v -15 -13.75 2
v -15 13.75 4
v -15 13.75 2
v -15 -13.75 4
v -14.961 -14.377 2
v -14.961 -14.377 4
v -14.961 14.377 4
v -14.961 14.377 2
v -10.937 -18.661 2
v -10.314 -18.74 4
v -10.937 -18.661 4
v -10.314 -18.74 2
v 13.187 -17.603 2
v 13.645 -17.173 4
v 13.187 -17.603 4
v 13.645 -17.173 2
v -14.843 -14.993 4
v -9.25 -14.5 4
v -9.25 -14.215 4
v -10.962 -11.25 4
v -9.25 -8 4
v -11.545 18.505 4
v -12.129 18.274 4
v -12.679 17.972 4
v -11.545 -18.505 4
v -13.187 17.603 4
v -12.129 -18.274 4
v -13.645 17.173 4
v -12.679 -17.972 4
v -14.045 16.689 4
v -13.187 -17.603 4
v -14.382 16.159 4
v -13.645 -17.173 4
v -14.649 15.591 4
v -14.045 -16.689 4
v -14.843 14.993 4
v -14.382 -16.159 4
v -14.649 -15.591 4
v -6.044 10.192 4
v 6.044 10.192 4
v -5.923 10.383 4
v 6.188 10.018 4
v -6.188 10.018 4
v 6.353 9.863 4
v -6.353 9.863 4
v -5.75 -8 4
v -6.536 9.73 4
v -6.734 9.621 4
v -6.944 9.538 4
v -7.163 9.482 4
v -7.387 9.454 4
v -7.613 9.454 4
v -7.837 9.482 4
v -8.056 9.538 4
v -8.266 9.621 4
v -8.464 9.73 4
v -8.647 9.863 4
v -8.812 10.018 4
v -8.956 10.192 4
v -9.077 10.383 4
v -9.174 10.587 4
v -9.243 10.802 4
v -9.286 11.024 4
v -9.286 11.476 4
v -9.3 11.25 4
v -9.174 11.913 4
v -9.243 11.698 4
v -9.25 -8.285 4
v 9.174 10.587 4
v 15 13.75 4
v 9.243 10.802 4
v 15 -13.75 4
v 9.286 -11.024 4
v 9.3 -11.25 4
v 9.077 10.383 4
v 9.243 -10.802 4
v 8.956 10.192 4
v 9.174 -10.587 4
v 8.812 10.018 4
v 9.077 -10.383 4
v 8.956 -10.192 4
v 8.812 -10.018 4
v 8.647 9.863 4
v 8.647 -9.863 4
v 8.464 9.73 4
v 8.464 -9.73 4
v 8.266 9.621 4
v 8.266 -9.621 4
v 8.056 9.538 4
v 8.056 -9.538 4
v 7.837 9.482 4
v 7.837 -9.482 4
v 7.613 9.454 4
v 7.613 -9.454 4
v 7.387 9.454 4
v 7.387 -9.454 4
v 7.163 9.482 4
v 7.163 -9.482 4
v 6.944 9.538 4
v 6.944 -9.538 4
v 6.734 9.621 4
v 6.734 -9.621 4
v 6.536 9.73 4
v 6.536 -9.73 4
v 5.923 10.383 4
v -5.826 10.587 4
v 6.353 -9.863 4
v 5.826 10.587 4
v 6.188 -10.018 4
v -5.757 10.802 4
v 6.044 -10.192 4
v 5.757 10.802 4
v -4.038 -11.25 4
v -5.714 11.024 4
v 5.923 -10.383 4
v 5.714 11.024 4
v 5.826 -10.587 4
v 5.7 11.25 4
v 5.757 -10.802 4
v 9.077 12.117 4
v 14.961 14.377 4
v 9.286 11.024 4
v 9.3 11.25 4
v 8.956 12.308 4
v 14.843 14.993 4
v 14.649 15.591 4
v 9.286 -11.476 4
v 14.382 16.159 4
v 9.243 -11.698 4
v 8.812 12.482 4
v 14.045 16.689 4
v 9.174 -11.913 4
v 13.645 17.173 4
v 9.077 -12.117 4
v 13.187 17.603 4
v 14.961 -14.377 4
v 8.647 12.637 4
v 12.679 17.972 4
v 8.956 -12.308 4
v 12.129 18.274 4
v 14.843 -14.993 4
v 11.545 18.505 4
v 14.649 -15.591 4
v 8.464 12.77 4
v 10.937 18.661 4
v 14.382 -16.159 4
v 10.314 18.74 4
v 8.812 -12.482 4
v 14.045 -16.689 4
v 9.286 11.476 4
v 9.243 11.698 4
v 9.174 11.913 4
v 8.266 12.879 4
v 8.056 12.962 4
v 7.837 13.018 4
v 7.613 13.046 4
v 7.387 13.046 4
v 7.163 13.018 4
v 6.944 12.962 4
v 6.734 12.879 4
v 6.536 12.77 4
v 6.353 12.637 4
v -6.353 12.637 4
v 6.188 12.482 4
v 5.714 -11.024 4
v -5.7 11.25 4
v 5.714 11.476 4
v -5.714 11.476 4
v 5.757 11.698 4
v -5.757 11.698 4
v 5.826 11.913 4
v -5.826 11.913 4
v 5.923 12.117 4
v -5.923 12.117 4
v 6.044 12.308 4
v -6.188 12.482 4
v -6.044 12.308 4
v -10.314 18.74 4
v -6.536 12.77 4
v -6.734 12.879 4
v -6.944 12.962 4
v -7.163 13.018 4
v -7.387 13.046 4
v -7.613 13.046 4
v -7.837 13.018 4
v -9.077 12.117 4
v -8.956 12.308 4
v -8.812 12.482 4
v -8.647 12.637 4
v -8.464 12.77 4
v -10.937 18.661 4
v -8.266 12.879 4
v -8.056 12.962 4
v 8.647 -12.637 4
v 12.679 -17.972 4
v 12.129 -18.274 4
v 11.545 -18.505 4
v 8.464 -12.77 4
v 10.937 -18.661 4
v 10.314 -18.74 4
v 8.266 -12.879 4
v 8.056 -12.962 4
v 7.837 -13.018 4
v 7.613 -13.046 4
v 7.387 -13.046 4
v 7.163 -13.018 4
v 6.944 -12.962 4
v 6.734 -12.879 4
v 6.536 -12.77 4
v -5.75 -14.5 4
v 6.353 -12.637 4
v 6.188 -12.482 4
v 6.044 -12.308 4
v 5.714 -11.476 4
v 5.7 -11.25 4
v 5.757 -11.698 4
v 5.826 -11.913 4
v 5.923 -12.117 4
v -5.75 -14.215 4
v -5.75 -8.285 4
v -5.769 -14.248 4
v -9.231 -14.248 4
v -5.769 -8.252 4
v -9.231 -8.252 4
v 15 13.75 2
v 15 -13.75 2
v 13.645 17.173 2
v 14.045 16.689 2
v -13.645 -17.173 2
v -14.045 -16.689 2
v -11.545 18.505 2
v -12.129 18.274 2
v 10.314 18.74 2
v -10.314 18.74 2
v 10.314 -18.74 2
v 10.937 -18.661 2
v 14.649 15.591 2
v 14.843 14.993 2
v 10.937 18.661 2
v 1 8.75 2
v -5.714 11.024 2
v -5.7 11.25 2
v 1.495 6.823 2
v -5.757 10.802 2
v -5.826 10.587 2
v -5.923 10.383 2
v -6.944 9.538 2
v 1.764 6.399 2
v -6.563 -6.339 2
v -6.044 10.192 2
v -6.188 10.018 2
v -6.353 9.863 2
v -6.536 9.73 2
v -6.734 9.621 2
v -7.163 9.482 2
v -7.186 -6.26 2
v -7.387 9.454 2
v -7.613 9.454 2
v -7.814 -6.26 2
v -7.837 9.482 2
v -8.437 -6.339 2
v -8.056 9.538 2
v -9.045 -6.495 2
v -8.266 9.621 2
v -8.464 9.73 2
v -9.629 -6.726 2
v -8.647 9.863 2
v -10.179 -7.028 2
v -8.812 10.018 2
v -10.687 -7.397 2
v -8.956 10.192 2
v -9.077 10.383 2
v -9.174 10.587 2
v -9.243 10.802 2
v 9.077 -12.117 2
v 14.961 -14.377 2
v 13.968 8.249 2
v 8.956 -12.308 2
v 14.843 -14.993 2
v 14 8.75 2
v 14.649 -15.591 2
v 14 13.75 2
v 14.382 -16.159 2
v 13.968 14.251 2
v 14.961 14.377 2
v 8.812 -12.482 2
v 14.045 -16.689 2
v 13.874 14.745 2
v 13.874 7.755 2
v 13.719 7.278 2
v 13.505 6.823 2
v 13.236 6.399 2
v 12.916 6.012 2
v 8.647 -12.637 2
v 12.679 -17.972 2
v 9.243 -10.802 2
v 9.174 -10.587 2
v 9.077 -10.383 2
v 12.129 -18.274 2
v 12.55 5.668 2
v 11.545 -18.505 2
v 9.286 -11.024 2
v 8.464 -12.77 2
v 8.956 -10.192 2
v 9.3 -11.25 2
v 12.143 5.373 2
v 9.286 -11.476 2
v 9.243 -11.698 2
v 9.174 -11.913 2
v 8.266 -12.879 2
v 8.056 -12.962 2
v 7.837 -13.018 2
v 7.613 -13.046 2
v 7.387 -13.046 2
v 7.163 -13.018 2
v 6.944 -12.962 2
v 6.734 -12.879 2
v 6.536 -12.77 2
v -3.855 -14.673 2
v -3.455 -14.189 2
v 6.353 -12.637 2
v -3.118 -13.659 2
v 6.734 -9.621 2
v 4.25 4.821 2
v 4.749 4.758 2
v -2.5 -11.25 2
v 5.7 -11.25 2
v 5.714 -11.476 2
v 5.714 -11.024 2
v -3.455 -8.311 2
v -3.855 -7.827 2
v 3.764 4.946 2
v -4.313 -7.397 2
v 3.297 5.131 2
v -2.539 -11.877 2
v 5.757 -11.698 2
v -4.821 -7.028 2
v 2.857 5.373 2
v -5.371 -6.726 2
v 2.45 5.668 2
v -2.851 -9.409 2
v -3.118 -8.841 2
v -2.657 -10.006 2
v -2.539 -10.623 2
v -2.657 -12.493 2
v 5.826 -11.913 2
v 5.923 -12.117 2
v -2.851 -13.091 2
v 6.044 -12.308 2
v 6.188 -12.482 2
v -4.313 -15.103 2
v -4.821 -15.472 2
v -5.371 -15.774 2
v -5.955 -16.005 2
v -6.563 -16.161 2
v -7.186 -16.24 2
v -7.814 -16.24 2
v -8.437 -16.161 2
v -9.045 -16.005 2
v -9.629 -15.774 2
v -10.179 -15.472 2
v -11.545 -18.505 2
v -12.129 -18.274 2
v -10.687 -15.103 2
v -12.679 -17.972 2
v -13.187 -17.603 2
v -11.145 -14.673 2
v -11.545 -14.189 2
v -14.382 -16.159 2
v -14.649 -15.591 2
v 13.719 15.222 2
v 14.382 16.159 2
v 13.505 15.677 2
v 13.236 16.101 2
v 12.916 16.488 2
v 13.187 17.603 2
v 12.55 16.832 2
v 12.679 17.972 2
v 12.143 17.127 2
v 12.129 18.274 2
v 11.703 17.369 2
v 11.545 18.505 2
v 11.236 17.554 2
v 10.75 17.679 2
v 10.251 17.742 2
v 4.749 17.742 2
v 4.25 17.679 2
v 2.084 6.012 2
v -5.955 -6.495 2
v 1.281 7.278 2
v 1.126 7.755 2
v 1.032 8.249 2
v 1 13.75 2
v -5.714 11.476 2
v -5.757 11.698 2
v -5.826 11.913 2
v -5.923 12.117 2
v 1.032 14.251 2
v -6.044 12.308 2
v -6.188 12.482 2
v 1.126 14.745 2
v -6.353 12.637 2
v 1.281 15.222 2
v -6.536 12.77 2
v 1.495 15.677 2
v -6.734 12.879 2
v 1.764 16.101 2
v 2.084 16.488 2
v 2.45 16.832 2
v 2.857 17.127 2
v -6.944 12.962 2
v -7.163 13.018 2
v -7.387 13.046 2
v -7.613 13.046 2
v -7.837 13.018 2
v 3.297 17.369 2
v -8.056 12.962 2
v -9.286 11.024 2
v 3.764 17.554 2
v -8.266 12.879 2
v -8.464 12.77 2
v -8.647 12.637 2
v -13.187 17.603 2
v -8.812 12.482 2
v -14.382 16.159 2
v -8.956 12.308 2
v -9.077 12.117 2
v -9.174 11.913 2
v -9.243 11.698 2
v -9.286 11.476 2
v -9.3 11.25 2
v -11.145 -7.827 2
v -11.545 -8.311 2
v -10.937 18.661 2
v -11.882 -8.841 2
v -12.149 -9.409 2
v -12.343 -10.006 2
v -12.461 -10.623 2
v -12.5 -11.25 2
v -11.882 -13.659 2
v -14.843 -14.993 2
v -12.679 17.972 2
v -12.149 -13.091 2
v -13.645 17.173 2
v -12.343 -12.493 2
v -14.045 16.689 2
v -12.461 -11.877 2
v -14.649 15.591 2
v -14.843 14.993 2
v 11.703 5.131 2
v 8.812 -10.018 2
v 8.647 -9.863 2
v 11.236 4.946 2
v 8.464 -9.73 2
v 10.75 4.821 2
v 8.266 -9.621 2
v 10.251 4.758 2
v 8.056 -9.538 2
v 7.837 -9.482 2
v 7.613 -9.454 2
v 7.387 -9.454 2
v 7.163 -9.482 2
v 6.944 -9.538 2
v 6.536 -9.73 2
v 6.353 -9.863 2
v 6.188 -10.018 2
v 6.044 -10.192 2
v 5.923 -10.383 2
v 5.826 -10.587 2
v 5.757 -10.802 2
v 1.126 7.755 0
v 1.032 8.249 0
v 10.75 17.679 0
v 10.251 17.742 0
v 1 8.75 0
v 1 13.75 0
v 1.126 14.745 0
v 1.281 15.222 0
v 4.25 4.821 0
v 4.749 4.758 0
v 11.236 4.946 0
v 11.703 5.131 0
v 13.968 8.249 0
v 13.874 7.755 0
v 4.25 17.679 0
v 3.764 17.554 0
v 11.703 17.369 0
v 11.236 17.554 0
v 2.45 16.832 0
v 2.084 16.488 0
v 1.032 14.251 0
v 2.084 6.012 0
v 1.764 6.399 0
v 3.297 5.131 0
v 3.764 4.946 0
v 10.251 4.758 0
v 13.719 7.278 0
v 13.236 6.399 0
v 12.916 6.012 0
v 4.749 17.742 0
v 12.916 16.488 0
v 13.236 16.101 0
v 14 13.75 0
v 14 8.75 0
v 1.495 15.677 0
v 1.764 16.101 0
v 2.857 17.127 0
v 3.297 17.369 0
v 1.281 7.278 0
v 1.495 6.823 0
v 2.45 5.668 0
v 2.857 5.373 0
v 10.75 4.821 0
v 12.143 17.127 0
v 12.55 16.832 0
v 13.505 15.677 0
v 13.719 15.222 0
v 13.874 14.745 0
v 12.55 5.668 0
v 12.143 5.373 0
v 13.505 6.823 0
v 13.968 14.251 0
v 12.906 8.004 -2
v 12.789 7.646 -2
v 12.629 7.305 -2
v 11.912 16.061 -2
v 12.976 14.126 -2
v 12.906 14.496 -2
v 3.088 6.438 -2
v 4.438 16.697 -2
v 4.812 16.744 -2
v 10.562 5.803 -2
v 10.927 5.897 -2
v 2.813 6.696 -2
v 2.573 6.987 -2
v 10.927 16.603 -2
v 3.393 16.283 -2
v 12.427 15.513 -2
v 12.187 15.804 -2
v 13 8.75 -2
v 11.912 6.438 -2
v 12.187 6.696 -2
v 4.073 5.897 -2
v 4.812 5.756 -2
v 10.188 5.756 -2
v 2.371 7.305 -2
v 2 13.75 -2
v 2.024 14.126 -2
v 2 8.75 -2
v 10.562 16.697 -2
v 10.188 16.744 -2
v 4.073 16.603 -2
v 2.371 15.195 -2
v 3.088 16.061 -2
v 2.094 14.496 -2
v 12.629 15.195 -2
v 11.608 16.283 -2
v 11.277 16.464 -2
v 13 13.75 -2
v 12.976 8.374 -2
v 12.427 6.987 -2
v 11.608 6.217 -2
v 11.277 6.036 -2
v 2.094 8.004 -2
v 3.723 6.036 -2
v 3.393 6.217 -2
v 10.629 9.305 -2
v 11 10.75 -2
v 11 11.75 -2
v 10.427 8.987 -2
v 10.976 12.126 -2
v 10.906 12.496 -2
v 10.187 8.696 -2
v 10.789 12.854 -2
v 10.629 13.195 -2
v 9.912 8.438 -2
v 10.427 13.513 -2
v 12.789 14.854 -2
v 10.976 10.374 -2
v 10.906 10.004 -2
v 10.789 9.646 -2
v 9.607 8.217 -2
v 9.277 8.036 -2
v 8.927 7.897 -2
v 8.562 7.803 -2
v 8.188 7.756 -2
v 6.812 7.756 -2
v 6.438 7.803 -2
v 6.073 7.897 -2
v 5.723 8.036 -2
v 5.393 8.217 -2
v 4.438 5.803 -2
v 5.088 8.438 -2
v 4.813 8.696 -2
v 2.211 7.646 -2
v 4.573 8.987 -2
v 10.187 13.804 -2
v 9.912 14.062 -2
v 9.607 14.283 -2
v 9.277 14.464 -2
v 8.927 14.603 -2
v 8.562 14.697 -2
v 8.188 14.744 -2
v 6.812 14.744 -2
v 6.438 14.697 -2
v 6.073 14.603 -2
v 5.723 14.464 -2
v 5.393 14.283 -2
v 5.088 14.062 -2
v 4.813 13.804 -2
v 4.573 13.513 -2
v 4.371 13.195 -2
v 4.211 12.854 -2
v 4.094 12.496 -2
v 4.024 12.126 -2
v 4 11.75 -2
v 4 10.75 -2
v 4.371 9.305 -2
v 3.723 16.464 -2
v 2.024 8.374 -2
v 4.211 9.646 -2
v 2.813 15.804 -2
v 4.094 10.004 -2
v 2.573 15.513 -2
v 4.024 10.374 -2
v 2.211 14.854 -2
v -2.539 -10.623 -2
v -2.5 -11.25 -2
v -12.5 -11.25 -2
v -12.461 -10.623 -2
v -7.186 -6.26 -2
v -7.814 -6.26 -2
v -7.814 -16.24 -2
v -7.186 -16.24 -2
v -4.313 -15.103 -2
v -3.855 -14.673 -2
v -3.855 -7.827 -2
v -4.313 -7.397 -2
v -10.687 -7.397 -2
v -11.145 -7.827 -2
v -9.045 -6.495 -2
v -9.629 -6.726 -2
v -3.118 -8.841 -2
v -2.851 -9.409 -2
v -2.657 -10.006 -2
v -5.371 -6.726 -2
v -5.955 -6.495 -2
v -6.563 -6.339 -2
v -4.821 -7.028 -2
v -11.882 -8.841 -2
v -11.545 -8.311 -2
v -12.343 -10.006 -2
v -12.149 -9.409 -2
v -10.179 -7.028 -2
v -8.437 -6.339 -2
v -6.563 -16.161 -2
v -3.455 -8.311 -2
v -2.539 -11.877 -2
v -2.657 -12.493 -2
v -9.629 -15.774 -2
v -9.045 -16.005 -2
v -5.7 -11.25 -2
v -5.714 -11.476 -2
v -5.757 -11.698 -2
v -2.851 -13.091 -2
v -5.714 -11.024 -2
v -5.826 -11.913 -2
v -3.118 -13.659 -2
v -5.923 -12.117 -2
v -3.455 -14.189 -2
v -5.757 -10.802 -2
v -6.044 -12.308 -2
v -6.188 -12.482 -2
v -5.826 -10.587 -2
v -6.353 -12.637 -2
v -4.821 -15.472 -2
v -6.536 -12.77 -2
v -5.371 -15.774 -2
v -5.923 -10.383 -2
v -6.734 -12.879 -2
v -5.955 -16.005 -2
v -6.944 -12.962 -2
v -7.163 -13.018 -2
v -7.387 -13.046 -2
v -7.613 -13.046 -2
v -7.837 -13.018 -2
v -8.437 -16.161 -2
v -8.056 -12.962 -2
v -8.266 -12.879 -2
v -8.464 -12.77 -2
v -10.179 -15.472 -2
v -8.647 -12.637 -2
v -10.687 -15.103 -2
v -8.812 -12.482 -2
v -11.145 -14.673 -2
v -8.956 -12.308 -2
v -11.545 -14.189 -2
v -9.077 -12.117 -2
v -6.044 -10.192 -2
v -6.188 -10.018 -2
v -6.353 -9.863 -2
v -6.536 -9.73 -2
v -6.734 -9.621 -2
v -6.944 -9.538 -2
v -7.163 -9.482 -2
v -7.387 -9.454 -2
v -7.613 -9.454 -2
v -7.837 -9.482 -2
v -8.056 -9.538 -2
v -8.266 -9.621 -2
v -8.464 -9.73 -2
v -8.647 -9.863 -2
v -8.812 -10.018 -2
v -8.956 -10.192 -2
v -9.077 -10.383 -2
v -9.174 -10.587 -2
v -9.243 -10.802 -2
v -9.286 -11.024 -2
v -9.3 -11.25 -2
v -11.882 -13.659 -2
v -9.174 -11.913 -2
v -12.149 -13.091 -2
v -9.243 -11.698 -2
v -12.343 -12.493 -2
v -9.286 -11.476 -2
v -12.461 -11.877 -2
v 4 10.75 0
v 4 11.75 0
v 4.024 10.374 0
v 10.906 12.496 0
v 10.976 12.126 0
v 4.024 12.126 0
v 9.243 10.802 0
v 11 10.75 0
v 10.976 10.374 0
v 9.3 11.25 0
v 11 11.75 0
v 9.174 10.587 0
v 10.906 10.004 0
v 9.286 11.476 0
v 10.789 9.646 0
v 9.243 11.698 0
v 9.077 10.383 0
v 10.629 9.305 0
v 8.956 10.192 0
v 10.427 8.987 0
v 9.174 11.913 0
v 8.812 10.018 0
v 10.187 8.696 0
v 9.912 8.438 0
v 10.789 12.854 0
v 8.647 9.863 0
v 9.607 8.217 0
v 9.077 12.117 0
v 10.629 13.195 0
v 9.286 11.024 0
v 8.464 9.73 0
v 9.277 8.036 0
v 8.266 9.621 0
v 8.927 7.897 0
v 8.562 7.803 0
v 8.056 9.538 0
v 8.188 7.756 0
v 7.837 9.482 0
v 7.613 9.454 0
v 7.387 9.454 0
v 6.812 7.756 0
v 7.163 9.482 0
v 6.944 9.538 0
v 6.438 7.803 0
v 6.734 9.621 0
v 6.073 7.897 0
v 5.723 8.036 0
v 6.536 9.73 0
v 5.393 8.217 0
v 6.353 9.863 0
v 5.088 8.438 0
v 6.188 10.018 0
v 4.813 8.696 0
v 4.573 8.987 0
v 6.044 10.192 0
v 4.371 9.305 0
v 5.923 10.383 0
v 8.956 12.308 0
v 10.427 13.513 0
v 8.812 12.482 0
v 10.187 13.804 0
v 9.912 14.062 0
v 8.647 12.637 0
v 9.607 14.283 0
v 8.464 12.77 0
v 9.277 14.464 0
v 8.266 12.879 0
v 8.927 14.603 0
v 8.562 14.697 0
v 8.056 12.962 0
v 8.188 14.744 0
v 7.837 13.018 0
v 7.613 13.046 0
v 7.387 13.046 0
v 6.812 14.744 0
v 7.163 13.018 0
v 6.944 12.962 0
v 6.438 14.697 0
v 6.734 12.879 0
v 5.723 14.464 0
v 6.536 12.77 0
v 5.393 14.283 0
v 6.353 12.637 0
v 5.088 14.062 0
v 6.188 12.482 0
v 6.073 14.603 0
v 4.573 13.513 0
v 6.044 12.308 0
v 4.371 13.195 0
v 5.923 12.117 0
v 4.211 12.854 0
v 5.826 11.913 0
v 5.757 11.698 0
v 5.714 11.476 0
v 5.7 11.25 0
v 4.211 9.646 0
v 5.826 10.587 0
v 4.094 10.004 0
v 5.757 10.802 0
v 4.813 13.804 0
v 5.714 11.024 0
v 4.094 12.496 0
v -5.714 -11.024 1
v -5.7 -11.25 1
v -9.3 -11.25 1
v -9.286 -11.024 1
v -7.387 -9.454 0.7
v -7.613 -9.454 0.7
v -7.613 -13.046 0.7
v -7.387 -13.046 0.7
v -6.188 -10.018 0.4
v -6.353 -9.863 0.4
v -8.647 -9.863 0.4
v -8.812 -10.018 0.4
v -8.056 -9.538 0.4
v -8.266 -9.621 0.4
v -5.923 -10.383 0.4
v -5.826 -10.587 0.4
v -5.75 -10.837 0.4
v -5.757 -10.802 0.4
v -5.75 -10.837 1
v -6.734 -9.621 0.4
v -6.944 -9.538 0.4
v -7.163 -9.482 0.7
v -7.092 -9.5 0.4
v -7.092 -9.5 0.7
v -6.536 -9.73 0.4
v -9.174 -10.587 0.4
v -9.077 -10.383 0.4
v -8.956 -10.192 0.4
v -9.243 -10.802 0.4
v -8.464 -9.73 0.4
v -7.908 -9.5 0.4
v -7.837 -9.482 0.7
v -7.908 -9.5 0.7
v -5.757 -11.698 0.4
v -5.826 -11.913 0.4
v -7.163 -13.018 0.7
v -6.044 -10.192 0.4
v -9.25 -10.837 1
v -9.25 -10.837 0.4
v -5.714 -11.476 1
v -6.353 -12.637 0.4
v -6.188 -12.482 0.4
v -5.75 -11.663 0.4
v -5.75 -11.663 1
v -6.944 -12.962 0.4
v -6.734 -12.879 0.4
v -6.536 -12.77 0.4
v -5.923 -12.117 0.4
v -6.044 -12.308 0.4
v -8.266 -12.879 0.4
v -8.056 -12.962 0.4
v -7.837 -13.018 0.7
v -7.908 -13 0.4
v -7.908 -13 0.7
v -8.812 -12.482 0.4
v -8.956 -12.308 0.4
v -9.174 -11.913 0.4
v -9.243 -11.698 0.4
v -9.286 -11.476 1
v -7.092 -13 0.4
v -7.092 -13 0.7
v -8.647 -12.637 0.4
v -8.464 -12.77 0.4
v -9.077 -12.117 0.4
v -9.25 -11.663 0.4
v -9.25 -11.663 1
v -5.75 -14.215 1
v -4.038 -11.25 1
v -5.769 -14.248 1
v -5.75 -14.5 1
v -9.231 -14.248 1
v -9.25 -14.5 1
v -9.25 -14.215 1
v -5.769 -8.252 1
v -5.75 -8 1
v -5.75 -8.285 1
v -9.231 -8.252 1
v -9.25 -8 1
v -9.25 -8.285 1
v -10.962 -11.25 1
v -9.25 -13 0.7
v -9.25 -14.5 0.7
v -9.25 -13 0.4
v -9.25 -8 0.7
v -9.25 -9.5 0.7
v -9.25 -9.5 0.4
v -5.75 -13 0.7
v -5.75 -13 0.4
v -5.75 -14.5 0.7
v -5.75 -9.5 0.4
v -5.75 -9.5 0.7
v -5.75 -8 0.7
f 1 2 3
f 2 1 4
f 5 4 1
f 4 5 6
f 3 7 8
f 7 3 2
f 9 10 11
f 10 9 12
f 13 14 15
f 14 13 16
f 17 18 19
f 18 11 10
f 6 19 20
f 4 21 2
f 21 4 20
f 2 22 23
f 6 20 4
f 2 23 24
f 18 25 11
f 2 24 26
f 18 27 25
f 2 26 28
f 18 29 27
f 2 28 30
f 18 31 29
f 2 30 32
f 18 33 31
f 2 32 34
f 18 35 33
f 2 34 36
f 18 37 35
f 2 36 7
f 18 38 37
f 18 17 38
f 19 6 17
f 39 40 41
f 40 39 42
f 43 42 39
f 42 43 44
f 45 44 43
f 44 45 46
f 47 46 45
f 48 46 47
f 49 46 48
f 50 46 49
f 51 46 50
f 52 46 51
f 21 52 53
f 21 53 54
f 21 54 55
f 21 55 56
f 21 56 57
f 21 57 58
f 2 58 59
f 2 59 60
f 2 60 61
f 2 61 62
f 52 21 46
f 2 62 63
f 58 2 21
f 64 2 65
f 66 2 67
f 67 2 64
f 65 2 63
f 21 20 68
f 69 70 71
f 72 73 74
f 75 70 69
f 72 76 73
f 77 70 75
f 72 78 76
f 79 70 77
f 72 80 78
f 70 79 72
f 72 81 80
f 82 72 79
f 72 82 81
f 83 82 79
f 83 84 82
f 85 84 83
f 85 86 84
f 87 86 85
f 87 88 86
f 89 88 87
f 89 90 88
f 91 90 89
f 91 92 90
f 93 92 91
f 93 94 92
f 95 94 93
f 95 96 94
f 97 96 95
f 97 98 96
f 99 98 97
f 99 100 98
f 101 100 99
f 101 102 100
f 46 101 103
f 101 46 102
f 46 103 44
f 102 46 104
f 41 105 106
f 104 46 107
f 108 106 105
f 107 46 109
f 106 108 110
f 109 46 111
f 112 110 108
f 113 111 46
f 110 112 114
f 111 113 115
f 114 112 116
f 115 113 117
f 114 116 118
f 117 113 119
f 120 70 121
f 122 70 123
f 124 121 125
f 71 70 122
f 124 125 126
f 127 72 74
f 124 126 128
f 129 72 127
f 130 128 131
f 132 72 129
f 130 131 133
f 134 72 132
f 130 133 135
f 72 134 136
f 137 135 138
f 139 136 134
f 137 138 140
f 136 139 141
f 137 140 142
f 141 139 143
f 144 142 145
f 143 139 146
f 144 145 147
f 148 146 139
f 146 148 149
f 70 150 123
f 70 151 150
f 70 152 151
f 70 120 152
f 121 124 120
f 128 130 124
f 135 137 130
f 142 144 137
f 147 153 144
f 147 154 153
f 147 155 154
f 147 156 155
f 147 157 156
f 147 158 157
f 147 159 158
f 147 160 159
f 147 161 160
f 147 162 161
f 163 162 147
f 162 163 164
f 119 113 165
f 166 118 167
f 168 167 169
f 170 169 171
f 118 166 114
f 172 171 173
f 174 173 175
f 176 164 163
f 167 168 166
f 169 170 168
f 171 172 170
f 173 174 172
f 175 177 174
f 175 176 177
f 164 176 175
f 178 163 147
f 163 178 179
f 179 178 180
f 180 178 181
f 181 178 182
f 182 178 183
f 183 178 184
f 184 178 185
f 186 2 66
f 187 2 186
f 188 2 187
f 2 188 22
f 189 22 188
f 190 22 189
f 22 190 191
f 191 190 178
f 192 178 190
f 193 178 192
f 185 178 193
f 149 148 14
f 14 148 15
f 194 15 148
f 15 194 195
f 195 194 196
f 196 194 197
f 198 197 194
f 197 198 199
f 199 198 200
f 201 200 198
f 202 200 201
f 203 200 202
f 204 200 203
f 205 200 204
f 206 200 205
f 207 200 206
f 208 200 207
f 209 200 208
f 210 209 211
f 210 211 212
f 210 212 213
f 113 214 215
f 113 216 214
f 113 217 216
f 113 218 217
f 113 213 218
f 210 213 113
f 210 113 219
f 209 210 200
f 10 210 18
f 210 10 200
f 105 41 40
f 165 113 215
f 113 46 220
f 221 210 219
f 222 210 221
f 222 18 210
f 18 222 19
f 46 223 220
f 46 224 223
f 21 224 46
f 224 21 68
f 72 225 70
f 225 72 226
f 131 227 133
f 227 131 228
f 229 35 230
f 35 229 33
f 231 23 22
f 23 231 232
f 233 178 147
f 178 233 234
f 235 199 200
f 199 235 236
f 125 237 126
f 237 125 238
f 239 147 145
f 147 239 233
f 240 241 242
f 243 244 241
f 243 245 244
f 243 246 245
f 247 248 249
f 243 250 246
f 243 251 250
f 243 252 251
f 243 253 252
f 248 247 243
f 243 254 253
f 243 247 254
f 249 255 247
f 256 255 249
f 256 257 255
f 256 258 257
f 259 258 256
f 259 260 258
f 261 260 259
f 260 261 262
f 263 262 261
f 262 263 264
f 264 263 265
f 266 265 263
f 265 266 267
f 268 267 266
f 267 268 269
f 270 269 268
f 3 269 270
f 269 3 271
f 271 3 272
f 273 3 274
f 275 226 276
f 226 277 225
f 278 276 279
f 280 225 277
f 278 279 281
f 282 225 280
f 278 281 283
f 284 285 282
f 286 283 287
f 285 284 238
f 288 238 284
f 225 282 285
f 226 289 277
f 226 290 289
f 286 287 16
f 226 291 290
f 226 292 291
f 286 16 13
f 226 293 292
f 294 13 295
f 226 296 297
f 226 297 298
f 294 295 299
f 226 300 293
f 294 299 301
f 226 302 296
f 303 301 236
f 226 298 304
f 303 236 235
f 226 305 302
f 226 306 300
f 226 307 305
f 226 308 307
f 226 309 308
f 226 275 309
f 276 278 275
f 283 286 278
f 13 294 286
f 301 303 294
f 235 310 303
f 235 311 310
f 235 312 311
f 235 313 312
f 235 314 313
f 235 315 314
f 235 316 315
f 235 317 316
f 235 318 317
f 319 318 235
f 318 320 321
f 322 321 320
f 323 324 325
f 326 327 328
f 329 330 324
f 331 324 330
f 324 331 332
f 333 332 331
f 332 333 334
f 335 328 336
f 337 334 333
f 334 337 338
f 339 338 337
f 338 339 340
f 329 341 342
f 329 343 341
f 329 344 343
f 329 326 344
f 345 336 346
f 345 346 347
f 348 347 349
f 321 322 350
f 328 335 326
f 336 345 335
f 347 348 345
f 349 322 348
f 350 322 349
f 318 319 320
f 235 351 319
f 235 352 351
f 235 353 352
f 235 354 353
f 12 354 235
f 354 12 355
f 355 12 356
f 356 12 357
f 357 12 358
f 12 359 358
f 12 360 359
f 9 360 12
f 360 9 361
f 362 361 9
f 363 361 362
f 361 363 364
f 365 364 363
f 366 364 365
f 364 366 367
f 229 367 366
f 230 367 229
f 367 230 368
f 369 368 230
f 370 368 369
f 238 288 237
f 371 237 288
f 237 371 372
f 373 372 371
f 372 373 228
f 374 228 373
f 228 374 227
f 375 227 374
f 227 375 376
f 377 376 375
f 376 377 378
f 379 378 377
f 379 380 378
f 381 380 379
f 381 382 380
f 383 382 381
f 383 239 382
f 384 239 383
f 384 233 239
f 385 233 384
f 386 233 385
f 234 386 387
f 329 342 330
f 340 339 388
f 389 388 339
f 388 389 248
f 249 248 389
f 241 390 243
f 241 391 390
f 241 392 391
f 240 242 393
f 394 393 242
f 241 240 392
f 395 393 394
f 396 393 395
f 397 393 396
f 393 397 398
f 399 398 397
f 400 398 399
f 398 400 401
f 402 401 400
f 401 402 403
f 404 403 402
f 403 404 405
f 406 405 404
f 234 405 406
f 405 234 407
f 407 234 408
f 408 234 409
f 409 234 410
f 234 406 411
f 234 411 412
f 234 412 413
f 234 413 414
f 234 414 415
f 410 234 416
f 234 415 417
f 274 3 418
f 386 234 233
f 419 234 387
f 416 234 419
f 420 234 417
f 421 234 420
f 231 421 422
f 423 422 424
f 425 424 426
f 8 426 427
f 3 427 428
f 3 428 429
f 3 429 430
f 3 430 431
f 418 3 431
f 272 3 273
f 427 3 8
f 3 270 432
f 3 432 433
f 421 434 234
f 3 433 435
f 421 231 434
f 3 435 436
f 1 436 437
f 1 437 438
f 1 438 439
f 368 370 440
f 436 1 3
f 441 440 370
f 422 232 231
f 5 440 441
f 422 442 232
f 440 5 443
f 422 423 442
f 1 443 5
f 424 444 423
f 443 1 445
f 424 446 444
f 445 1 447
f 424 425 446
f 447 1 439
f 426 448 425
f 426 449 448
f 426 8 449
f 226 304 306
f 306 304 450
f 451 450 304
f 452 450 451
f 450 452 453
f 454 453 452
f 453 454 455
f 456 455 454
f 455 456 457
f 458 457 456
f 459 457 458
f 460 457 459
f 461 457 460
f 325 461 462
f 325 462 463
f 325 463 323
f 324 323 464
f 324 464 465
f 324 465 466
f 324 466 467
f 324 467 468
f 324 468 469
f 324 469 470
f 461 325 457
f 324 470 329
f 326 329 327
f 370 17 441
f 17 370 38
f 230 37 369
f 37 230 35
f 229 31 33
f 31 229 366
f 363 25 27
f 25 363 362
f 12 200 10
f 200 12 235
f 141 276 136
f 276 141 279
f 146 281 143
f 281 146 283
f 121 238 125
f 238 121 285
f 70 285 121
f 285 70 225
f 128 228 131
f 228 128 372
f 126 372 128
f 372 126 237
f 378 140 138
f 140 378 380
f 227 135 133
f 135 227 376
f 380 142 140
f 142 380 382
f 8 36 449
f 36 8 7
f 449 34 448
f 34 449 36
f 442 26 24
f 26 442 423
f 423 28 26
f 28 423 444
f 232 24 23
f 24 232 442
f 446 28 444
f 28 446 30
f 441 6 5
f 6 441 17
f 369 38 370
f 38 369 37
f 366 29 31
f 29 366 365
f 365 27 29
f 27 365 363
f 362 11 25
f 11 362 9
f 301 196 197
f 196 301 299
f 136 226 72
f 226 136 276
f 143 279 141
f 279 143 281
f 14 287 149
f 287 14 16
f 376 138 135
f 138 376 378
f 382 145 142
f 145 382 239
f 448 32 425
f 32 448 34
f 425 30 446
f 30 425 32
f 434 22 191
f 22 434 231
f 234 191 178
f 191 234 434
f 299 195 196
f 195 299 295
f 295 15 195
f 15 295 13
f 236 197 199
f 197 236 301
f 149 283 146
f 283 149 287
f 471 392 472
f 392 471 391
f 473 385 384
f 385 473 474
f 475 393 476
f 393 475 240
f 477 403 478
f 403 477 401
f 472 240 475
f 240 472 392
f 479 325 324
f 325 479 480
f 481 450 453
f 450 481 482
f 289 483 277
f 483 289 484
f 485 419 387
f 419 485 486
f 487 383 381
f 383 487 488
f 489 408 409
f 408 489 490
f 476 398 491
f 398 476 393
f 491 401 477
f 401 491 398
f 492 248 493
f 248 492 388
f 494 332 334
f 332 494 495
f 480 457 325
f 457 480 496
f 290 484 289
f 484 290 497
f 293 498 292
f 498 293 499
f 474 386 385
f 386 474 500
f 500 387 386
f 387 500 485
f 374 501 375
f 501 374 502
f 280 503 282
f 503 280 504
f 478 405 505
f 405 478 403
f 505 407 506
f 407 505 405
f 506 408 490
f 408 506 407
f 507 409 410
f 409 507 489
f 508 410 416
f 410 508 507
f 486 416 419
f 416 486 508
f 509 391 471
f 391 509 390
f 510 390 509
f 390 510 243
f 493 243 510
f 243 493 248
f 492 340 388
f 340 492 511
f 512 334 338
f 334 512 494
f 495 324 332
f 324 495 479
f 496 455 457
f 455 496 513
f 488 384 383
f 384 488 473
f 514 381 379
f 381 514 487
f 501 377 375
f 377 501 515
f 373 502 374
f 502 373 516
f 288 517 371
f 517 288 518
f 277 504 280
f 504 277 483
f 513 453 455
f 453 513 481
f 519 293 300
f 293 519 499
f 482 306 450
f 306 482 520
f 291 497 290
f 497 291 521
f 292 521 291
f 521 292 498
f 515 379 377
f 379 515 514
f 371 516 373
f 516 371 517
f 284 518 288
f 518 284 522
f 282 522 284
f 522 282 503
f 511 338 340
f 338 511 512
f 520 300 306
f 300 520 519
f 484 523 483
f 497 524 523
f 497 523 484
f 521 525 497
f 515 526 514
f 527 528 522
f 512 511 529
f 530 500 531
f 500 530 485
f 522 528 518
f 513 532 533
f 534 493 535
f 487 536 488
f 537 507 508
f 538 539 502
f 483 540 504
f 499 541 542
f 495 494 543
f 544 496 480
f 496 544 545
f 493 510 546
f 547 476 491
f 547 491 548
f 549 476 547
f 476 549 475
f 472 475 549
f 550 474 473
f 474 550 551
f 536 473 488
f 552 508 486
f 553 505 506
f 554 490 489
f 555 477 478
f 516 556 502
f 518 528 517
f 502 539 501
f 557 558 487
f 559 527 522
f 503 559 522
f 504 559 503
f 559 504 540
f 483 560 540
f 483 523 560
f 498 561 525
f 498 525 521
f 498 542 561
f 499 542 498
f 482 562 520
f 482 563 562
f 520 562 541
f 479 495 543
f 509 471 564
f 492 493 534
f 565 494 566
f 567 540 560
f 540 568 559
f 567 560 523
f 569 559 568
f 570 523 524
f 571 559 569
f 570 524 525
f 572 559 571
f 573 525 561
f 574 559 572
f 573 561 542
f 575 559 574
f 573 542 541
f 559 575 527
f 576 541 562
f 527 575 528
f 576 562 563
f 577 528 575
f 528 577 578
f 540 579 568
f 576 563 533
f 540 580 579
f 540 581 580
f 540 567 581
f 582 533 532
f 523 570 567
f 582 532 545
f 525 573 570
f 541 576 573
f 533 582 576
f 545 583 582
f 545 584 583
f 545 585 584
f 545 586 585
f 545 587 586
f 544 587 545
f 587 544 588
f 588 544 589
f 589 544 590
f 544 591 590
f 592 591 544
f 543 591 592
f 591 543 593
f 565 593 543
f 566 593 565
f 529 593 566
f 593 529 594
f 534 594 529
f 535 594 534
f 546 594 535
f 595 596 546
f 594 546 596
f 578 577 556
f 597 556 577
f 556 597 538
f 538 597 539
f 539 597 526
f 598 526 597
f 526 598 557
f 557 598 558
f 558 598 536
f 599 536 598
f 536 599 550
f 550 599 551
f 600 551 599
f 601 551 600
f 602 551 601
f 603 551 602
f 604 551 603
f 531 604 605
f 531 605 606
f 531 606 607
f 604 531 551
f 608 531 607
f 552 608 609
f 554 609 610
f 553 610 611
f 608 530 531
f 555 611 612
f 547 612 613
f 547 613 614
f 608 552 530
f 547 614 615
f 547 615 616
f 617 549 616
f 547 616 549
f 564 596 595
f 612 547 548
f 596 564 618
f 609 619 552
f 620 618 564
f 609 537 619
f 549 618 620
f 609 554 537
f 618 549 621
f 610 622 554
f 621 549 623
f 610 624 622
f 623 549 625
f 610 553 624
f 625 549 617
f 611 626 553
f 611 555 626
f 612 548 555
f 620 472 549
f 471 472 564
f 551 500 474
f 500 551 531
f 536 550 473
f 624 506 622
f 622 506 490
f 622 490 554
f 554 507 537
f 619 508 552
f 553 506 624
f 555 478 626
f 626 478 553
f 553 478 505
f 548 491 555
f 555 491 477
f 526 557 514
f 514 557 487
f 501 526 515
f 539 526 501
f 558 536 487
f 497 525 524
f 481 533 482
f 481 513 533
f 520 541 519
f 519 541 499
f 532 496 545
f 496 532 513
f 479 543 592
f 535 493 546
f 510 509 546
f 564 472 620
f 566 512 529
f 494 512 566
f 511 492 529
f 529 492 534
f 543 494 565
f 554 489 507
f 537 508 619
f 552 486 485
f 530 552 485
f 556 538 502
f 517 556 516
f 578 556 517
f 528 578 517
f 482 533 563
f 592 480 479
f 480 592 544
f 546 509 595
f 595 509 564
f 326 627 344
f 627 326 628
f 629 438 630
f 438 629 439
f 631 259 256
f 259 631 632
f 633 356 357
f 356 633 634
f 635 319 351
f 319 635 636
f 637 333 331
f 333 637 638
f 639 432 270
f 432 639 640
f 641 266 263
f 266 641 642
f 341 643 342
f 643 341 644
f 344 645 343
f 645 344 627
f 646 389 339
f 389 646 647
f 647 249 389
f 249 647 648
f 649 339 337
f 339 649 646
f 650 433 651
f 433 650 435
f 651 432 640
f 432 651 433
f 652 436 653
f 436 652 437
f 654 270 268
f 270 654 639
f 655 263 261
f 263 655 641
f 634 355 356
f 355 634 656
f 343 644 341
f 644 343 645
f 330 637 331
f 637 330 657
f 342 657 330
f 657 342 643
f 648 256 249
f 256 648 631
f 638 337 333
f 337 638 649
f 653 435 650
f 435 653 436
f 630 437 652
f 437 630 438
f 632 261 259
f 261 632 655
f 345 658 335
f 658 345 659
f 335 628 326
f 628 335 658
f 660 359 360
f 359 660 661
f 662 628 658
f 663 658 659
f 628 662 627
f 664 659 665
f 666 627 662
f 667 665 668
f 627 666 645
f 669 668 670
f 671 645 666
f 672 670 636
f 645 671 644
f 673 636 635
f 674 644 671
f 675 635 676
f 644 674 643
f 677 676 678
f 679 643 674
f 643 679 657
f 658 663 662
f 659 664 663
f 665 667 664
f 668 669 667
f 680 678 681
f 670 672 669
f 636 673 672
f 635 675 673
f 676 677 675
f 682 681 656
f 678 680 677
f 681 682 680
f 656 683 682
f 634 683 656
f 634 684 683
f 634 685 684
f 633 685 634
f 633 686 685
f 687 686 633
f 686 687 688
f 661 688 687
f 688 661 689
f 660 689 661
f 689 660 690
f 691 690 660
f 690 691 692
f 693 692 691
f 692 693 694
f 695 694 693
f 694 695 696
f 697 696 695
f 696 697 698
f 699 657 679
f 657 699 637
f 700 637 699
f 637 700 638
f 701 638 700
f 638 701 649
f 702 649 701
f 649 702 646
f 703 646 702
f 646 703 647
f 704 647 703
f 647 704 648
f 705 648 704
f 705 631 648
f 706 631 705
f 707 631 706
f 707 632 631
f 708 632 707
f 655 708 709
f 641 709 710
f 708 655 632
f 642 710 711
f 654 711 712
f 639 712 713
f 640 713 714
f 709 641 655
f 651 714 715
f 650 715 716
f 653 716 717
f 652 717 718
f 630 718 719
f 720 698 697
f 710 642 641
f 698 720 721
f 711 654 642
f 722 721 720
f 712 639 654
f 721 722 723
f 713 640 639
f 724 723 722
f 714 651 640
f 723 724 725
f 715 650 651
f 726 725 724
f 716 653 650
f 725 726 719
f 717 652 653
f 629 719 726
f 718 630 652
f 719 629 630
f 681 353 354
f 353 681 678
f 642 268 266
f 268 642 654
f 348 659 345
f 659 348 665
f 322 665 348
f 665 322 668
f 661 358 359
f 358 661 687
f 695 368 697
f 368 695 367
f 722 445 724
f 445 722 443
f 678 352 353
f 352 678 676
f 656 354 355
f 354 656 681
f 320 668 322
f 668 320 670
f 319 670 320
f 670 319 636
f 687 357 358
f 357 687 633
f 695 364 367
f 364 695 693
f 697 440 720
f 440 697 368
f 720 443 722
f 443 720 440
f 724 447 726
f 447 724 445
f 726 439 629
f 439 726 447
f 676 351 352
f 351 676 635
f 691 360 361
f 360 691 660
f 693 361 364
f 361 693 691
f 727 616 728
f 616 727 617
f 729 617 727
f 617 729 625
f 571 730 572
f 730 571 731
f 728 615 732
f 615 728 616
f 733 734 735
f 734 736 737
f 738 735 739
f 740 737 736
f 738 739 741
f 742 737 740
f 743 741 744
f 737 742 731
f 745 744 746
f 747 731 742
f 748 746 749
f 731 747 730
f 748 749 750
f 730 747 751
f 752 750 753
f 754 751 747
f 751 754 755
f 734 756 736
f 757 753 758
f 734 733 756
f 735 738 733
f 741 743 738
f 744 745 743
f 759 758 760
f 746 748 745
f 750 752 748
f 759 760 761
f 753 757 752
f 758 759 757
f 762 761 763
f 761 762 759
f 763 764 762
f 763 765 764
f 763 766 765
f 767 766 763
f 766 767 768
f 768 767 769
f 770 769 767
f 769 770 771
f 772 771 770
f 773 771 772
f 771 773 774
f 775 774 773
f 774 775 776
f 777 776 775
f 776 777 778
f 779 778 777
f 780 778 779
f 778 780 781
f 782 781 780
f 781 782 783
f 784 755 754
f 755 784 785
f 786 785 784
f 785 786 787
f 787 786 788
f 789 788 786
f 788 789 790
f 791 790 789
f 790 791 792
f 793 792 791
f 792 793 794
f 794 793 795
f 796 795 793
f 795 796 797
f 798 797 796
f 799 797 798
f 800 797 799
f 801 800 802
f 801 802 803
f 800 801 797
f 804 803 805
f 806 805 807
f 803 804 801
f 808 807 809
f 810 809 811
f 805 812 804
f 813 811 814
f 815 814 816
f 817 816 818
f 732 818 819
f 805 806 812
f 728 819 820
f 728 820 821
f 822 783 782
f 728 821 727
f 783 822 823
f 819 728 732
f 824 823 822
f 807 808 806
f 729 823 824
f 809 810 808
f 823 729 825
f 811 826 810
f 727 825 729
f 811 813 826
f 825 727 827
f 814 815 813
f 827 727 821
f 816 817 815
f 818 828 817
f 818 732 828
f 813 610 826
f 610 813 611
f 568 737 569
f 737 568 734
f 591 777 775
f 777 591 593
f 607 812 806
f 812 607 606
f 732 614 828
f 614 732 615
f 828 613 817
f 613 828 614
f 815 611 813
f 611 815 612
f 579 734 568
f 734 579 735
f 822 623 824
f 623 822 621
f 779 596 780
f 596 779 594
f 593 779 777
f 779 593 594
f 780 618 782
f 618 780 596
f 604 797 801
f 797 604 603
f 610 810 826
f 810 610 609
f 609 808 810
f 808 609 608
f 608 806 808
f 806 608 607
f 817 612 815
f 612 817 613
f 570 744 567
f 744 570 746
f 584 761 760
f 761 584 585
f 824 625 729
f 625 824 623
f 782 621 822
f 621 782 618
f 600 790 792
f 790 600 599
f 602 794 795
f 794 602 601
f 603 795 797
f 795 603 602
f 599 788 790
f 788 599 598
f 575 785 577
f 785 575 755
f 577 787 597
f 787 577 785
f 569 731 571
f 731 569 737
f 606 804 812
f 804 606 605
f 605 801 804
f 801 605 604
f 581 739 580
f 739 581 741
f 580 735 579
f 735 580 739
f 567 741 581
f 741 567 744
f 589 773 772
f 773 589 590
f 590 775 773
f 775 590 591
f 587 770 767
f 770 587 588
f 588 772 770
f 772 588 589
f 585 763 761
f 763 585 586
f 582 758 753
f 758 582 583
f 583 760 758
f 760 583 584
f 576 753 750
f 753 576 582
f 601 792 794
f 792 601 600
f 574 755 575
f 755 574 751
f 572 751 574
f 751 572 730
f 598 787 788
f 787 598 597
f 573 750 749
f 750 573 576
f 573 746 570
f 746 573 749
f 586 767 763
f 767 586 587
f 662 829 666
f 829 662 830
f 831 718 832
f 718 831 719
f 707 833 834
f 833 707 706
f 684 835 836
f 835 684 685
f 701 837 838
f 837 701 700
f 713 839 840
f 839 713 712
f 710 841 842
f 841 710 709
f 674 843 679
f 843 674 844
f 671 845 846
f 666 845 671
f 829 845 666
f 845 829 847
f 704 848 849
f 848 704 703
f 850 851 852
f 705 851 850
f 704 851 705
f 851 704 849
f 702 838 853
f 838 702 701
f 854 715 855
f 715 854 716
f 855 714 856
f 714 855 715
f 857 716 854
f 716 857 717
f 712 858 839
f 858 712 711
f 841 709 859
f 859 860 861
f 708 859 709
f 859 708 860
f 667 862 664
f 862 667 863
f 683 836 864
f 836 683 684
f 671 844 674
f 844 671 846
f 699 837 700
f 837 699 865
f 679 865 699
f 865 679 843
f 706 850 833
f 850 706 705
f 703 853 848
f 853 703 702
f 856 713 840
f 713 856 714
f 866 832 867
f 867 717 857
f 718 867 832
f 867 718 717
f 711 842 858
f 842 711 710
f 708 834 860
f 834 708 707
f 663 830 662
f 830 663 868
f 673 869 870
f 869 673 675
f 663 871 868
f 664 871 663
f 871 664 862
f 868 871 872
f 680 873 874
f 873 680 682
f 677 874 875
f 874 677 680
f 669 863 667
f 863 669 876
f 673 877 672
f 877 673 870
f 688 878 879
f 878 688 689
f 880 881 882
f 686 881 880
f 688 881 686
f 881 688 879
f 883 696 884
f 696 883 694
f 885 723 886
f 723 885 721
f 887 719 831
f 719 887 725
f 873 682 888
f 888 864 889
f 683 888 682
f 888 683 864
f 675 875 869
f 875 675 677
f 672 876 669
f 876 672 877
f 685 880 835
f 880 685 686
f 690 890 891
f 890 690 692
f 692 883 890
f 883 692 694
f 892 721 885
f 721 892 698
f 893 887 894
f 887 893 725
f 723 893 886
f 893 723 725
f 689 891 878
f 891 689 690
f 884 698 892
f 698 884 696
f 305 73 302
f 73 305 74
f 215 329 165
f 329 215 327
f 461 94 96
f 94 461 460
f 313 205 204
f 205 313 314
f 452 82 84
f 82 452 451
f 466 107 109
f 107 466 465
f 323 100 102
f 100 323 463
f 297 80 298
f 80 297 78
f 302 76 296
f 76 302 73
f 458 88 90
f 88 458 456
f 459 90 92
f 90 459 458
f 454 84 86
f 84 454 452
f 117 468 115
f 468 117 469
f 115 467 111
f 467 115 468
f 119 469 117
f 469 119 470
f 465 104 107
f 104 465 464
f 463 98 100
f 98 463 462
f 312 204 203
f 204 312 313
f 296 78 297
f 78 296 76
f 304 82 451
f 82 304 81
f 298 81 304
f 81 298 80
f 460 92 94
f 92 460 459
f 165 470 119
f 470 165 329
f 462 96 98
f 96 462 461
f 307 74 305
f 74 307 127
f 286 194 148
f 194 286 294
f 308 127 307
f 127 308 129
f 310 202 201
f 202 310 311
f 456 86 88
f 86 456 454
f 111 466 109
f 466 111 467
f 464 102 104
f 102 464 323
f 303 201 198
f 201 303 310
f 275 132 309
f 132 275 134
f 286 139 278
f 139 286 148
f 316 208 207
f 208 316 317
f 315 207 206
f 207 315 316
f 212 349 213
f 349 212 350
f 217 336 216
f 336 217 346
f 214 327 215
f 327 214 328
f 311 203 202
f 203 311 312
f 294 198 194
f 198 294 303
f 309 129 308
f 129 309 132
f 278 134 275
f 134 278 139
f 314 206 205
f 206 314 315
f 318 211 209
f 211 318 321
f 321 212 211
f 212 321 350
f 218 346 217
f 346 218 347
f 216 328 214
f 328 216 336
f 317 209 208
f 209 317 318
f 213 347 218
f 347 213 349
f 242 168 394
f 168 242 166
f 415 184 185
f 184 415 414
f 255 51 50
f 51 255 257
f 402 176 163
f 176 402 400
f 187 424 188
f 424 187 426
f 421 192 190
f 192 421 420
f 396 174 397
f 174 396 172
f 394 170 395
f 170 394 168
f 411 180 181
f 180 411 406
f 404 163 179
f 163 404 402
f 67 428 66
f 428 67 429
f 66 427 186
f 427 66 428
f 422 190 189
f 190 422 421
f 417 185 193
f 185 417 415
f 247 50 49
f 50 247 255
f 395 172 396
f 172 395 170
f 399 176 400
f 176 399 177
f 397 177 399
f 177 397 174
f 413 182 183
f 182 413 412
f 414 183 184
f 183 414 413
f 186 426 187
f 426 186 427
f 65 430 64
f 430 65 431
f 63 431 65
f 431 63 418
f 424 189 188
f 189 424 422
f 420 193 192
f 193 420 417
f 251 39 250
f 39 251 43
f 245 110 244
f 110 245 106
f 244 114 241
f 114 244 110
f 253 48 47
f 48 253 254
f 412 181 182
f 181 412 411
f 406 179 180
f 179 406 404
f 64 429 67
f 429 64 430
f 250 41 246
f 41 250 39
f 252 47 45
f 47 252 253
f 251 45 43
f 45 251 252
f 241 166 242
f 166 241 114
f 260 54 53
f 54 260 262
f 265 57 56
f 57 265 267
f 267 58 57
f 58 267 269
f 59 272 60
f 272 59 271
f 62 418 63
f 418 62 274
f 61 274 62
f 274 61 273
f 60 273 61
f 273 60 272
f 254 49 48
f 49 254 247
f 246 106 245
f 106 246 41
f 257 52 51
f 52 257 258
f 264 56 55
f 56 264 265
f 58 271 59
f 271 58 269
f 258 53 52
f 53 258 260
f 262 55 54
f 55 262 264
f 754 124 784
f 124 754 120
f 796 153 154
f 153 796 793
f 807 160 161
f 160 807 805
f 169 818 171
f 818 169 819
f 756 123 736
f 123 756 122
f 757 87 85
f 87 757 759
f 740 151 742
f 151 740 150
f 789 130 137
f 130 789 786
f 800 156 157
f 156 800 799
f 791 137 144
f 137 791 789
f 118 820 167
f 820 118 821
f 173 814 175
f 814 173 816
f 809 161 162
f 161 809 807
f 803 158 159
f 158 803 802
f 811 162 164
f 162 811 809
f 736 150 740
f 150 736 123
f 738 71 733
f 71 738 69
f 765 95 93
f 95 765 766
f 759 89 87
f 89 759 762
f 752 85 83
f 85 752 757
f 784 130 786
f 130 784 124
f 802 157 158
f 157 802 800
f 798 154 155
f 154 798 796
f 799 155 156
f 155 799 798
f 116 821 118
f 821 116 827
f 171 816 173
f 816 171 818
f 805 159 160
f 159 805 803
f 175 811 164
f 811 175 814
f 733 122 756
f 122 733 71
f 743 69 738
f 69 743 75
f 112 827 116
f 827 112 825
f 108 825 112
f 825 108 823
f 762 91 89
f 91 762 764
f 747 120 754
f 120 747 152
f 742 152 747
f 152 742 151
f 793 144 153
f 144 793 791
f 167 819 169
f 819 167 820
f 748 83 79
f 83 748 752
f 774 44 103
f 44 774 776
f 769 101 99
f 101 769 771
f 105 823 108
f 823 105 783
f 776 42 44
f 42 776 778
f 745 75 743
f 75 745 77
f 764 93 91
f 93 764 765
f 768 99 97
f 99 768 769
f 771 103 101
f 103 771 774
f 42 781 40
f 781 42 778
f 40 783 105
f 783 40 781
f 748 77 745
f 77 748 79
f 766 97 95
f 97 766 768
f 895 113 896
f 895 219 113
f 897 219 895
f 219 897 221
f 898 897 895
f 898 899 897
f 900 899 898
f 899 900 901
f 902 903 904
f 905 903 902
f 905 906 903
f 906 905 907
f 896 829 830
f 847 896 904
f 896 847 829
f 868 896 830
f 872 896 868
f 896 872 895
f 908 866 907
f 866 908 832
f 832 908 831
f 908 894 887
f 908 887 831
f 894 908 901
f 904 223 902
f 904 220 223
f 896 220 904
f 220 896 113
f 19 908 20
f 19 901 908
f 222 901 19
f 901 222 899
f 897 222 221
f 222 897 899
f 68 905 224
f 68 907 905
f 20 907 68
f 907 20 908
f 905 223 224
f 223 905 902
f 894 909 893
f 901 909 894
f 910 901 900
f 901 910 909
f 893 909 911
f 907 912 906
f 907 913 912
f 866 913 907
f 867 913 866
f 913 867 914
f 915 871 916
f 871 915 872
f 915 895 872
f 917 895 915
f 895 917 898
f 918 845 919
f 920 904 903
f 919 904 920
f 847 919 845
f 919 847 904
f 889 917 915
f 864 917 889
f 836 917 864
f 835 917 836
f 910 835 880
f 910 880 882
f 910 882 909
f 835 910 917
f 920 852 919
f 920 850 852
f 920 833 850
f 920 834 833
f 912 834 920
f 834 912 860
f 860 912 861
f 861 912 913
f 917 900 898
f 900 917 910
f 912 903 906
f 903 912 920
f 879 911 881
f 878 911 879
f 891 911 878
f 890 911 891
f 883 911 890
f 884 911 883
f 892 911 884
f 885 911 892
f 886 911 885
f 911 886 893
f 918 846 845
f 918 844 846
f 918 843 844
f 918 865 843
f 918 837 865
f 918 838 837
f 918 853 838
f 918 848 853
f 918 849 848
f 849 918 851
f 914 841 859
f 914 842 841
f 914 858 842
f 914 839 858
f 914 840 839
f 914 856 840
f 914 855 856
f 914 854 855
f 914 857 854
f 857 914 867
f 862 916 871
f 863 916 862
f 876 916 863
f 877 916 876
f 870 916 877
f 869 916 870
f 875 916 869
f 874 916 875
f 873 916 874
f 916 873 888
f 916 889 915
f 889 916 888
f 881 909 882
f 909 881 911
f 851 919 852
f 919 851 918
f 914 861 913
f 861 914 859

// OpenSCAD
$fn = 50;


difference() {
	union() {
		translate(v = [0, 0, 2]) {
			rotate(a = [0, 0, 0]) {
				hull() {
					translate(v = [-10.0000000000, 13.7500000000, 0]) {
						rotate(a = [0, 0, 0]) {
							translate(v = [0, 0, 0]) {
								rotate(a = [0, 0, 0]) {
									cylinder(h = 2, r = 5);
								}
							}
						}
					}
					translate(v = [10.0000000000, 13.7500000000, 0]) {
						rotate(a = [0, 0, 0]) {
							translate(v = [0, 0, 0]) {
								rotate(a = [0, 0, 0]) {
									cylinder(h = 2, r = 5);
								}
							}
						}
					}
					translate(v = [-10.0000000000, -13.7500000000, 0]) {
						rotate(a = [0, 0, 0]) {
							translate(v = [0, 0, 0]) {
								rotate(a = [0, 0, 0]) {
									cylinder(h = 2, r = 5);
								}
							}
						}
					}
					translate(v = [10.0000000000, -13.7500000000, 0]) {
						rotate(a = [0, 0, 0]) {
							translate(v = [0, 0, 0]) {
								rotate(a = [0, 0, 0]) {
									cylinder(h = 2, r = 5);
								}
							}
						}
					}
				}
			}
		}
		translate(v = [7.5000000000, 11.2500000000, 0]) {
			rotate(a = [0, 0, 0]) {
				hull() {
					translate(v = [-2.5000000000, 2.5000000000, 0]) {
						rotate(a = [0, 0, 0]) {
							cylinder(h = 2, r1 = 4.0000000000, r2 = 4.0000000000);
						}
					}
					translate(v = [2.5000000000, 2.5000000000, 0]) {
						rotate(a = [0, 0, 0]) {
							cylinder(h = 2, r1 = 4.0000000000, r2 = 4.0000000000);
						}
					}
					translate(v = [-2.5000000000, -2.5000000000, 0]) {
						rotate(a = [0, 0, 0]) {
							cylinder(h = 2, r1 = 4.0000000000, r2 = 4.0000000000);
						}
					}
					translate(v = [2.5000000000, -2.5000000000, 0]) {
						rotate(a = [0, 0, 0]) {
							cylinder(h = 2, r1 = 4.0000000000, r2 = 4.0000000000);
						}
					}
				}
			}
		}
		translate(v = [7.5000000000, 11.2500000000, -2]) {
			rotate(a = [0, 180, 0]) {
				hull() {
					translate(v = [-2.5000000000, 2.5000000000, 0]) {
						rotate(a = [0, 180, 0]) {
							cylinder(h = 2, r1 = 3.0000000000, r2 = 4.0000000000);
						}
					}
					translate(v = [2.5000000000, 2.5000000000, 0]) {
						rotate(a = [0, 180, 0]) {
							cylinder(h = 2, r1 = 3.0000000000, r2 = 4.0000000000);
						}
					}
					translate(v = [-2.5000000000, -2.5000000000, 0]) {
						rotate(a = [0, 180, 0]) {
							cylinder(h = 2, r1 = 3.0000000000, r2 = 4.0000000000);
						}
					}
					translate(v = [2.5000000000, -2.5000000000, 0]) {
						rotate(a = [0, 180, 0]) {
							cylinder(h = 2, r1 = 3.0000000000, r2 = 4.0000000000);
						}
					}
				}
			}
		}
		translate(v = [-7.5000000000, -11.2500000000, -2.0000000000]) {
			rotate(a = [0, 0, 0]) {
				cylinder(h = 4, r = 5);
			}
		}
	}
	union() {
		translate(v = [7.5000000000, 11.2500000000, -2]) {
			rotate(a = [0, 0, 0]) {
				hull() {
					translate(v = [-0.5000000000, 0.5000000000, 0]) {
						rotate(a = [0, 0, 0]) {
							translate(v = [0, 0, 0]) {
								rotate(a = [0, 0, 0]) {
									cylinder(h = 2, r = 3.0000000000);
								}
							}
						}
					}
					translate(v = [0.5000000000, 0.5000000000, 0]) {
						rotate(a = [0, 0, 0]) {
							translate(v = [0, 0, 0]) {
								rotate(a = [0, 0, 0]) {
									cylinder(h = 2, r = 3.0000000000);
								}
							}
						}
					}
					translate(v = [-0.5000000000, -0.5000000000, 0]) {
						rotate(a = [0, 0, 0]) {
							translate(v = [0, 0, 0]) {
								rotate(a = [0, 0, 0]) {
									cylinder(h = 2, r = 3.0000000000);
								}
							}
						}
					}
					translate(v = [0.5000000000, -0.5000000000, 0]) {
						rotate(a = [0, 0, 0]) {
							translate(v = [0, 0, 0]) {
								rotate(a = [0, 0, 0]) {
									cylinder(h = 2, r = 3.0000000000);
								}
							}
						}
					}
				}
			}
		}
		translate(v = [-7.5000000000, -11.2500000000, -50]) {
			rotate(a = [0, 0, 0]) {
				cylinder(h = 100, r = 1.8000000000);
			}
		}
		translate(v = [7.5000000000, -11.2500000000, -50]) {
			rotate(a = [0, 0, 0]) {
				cylinder(h = 100, r = 1.8000000000);
			}
		}
		translate(v = [-7.5000000000, 11.2500000000, -50]) {
			rotate(a = [0, 0, 0]) {
				cylinder(h = 100, r = 1.8000000000);
			}
		}
		translate(v = [7.5000000000, 11.2500000000, -50]) {
			rotate(a = [0, 0, 0]) {
				cylinder(h = 100, r = 1.8000000000);
			}
		}
		translate(v = [-7.5000000000, -11.2500000000, 1]) {
			rotate(a = [0, 0, 0]) {
				#translate(v = [0, 0, 0]) {
					rotate(a = [0, 0, 0]) {
						linear_extrude(height = 3) {
							polygon(points = [[3.4620000000, 0.0000000000], [1.7310000000, 2.9981799479], [-1.7310000000, 2.9981799479], [-3.4620000000, 0.0000000000], [-1.7310000000, -2.9981799479], [1.7310000000, -2.9981799479]]);
						}
					}
				}
			}
		}
		#translate(v = [-9.2500000000, -14.5000000000, 4]) {
			rotate(a = [0, 0, 0]) {
				cube(size = [3.5000000000, 6.5000000000, 0.3000000000]);
			}
		}
		#translate(v = [-9.2500000000, -13.0000000000, 4.3000000000]) {
			rotate(a = [0, 0, 0]) {
				cube(size = [3.5000000000, 3.5000000000, 0.3000000000]);
			}
		}
		#translate(v = [-9.2500000000, -14.5000000000, 0.7000000000]) {
			rotate(a = [0, 0, 0]) {
				cube(size = [3.5000000000, 6.5000000000, 0.3000000000]);
			}
		}
		#translate(v = [-9.2500000000, -13.0000000000, 0.4000000000]) {
			rotate(a = [0, 0, 0]) {
				cube(size = [3.5000000000, 3.5000000000, 0.3000000000]);
			}
		}
	}
}
